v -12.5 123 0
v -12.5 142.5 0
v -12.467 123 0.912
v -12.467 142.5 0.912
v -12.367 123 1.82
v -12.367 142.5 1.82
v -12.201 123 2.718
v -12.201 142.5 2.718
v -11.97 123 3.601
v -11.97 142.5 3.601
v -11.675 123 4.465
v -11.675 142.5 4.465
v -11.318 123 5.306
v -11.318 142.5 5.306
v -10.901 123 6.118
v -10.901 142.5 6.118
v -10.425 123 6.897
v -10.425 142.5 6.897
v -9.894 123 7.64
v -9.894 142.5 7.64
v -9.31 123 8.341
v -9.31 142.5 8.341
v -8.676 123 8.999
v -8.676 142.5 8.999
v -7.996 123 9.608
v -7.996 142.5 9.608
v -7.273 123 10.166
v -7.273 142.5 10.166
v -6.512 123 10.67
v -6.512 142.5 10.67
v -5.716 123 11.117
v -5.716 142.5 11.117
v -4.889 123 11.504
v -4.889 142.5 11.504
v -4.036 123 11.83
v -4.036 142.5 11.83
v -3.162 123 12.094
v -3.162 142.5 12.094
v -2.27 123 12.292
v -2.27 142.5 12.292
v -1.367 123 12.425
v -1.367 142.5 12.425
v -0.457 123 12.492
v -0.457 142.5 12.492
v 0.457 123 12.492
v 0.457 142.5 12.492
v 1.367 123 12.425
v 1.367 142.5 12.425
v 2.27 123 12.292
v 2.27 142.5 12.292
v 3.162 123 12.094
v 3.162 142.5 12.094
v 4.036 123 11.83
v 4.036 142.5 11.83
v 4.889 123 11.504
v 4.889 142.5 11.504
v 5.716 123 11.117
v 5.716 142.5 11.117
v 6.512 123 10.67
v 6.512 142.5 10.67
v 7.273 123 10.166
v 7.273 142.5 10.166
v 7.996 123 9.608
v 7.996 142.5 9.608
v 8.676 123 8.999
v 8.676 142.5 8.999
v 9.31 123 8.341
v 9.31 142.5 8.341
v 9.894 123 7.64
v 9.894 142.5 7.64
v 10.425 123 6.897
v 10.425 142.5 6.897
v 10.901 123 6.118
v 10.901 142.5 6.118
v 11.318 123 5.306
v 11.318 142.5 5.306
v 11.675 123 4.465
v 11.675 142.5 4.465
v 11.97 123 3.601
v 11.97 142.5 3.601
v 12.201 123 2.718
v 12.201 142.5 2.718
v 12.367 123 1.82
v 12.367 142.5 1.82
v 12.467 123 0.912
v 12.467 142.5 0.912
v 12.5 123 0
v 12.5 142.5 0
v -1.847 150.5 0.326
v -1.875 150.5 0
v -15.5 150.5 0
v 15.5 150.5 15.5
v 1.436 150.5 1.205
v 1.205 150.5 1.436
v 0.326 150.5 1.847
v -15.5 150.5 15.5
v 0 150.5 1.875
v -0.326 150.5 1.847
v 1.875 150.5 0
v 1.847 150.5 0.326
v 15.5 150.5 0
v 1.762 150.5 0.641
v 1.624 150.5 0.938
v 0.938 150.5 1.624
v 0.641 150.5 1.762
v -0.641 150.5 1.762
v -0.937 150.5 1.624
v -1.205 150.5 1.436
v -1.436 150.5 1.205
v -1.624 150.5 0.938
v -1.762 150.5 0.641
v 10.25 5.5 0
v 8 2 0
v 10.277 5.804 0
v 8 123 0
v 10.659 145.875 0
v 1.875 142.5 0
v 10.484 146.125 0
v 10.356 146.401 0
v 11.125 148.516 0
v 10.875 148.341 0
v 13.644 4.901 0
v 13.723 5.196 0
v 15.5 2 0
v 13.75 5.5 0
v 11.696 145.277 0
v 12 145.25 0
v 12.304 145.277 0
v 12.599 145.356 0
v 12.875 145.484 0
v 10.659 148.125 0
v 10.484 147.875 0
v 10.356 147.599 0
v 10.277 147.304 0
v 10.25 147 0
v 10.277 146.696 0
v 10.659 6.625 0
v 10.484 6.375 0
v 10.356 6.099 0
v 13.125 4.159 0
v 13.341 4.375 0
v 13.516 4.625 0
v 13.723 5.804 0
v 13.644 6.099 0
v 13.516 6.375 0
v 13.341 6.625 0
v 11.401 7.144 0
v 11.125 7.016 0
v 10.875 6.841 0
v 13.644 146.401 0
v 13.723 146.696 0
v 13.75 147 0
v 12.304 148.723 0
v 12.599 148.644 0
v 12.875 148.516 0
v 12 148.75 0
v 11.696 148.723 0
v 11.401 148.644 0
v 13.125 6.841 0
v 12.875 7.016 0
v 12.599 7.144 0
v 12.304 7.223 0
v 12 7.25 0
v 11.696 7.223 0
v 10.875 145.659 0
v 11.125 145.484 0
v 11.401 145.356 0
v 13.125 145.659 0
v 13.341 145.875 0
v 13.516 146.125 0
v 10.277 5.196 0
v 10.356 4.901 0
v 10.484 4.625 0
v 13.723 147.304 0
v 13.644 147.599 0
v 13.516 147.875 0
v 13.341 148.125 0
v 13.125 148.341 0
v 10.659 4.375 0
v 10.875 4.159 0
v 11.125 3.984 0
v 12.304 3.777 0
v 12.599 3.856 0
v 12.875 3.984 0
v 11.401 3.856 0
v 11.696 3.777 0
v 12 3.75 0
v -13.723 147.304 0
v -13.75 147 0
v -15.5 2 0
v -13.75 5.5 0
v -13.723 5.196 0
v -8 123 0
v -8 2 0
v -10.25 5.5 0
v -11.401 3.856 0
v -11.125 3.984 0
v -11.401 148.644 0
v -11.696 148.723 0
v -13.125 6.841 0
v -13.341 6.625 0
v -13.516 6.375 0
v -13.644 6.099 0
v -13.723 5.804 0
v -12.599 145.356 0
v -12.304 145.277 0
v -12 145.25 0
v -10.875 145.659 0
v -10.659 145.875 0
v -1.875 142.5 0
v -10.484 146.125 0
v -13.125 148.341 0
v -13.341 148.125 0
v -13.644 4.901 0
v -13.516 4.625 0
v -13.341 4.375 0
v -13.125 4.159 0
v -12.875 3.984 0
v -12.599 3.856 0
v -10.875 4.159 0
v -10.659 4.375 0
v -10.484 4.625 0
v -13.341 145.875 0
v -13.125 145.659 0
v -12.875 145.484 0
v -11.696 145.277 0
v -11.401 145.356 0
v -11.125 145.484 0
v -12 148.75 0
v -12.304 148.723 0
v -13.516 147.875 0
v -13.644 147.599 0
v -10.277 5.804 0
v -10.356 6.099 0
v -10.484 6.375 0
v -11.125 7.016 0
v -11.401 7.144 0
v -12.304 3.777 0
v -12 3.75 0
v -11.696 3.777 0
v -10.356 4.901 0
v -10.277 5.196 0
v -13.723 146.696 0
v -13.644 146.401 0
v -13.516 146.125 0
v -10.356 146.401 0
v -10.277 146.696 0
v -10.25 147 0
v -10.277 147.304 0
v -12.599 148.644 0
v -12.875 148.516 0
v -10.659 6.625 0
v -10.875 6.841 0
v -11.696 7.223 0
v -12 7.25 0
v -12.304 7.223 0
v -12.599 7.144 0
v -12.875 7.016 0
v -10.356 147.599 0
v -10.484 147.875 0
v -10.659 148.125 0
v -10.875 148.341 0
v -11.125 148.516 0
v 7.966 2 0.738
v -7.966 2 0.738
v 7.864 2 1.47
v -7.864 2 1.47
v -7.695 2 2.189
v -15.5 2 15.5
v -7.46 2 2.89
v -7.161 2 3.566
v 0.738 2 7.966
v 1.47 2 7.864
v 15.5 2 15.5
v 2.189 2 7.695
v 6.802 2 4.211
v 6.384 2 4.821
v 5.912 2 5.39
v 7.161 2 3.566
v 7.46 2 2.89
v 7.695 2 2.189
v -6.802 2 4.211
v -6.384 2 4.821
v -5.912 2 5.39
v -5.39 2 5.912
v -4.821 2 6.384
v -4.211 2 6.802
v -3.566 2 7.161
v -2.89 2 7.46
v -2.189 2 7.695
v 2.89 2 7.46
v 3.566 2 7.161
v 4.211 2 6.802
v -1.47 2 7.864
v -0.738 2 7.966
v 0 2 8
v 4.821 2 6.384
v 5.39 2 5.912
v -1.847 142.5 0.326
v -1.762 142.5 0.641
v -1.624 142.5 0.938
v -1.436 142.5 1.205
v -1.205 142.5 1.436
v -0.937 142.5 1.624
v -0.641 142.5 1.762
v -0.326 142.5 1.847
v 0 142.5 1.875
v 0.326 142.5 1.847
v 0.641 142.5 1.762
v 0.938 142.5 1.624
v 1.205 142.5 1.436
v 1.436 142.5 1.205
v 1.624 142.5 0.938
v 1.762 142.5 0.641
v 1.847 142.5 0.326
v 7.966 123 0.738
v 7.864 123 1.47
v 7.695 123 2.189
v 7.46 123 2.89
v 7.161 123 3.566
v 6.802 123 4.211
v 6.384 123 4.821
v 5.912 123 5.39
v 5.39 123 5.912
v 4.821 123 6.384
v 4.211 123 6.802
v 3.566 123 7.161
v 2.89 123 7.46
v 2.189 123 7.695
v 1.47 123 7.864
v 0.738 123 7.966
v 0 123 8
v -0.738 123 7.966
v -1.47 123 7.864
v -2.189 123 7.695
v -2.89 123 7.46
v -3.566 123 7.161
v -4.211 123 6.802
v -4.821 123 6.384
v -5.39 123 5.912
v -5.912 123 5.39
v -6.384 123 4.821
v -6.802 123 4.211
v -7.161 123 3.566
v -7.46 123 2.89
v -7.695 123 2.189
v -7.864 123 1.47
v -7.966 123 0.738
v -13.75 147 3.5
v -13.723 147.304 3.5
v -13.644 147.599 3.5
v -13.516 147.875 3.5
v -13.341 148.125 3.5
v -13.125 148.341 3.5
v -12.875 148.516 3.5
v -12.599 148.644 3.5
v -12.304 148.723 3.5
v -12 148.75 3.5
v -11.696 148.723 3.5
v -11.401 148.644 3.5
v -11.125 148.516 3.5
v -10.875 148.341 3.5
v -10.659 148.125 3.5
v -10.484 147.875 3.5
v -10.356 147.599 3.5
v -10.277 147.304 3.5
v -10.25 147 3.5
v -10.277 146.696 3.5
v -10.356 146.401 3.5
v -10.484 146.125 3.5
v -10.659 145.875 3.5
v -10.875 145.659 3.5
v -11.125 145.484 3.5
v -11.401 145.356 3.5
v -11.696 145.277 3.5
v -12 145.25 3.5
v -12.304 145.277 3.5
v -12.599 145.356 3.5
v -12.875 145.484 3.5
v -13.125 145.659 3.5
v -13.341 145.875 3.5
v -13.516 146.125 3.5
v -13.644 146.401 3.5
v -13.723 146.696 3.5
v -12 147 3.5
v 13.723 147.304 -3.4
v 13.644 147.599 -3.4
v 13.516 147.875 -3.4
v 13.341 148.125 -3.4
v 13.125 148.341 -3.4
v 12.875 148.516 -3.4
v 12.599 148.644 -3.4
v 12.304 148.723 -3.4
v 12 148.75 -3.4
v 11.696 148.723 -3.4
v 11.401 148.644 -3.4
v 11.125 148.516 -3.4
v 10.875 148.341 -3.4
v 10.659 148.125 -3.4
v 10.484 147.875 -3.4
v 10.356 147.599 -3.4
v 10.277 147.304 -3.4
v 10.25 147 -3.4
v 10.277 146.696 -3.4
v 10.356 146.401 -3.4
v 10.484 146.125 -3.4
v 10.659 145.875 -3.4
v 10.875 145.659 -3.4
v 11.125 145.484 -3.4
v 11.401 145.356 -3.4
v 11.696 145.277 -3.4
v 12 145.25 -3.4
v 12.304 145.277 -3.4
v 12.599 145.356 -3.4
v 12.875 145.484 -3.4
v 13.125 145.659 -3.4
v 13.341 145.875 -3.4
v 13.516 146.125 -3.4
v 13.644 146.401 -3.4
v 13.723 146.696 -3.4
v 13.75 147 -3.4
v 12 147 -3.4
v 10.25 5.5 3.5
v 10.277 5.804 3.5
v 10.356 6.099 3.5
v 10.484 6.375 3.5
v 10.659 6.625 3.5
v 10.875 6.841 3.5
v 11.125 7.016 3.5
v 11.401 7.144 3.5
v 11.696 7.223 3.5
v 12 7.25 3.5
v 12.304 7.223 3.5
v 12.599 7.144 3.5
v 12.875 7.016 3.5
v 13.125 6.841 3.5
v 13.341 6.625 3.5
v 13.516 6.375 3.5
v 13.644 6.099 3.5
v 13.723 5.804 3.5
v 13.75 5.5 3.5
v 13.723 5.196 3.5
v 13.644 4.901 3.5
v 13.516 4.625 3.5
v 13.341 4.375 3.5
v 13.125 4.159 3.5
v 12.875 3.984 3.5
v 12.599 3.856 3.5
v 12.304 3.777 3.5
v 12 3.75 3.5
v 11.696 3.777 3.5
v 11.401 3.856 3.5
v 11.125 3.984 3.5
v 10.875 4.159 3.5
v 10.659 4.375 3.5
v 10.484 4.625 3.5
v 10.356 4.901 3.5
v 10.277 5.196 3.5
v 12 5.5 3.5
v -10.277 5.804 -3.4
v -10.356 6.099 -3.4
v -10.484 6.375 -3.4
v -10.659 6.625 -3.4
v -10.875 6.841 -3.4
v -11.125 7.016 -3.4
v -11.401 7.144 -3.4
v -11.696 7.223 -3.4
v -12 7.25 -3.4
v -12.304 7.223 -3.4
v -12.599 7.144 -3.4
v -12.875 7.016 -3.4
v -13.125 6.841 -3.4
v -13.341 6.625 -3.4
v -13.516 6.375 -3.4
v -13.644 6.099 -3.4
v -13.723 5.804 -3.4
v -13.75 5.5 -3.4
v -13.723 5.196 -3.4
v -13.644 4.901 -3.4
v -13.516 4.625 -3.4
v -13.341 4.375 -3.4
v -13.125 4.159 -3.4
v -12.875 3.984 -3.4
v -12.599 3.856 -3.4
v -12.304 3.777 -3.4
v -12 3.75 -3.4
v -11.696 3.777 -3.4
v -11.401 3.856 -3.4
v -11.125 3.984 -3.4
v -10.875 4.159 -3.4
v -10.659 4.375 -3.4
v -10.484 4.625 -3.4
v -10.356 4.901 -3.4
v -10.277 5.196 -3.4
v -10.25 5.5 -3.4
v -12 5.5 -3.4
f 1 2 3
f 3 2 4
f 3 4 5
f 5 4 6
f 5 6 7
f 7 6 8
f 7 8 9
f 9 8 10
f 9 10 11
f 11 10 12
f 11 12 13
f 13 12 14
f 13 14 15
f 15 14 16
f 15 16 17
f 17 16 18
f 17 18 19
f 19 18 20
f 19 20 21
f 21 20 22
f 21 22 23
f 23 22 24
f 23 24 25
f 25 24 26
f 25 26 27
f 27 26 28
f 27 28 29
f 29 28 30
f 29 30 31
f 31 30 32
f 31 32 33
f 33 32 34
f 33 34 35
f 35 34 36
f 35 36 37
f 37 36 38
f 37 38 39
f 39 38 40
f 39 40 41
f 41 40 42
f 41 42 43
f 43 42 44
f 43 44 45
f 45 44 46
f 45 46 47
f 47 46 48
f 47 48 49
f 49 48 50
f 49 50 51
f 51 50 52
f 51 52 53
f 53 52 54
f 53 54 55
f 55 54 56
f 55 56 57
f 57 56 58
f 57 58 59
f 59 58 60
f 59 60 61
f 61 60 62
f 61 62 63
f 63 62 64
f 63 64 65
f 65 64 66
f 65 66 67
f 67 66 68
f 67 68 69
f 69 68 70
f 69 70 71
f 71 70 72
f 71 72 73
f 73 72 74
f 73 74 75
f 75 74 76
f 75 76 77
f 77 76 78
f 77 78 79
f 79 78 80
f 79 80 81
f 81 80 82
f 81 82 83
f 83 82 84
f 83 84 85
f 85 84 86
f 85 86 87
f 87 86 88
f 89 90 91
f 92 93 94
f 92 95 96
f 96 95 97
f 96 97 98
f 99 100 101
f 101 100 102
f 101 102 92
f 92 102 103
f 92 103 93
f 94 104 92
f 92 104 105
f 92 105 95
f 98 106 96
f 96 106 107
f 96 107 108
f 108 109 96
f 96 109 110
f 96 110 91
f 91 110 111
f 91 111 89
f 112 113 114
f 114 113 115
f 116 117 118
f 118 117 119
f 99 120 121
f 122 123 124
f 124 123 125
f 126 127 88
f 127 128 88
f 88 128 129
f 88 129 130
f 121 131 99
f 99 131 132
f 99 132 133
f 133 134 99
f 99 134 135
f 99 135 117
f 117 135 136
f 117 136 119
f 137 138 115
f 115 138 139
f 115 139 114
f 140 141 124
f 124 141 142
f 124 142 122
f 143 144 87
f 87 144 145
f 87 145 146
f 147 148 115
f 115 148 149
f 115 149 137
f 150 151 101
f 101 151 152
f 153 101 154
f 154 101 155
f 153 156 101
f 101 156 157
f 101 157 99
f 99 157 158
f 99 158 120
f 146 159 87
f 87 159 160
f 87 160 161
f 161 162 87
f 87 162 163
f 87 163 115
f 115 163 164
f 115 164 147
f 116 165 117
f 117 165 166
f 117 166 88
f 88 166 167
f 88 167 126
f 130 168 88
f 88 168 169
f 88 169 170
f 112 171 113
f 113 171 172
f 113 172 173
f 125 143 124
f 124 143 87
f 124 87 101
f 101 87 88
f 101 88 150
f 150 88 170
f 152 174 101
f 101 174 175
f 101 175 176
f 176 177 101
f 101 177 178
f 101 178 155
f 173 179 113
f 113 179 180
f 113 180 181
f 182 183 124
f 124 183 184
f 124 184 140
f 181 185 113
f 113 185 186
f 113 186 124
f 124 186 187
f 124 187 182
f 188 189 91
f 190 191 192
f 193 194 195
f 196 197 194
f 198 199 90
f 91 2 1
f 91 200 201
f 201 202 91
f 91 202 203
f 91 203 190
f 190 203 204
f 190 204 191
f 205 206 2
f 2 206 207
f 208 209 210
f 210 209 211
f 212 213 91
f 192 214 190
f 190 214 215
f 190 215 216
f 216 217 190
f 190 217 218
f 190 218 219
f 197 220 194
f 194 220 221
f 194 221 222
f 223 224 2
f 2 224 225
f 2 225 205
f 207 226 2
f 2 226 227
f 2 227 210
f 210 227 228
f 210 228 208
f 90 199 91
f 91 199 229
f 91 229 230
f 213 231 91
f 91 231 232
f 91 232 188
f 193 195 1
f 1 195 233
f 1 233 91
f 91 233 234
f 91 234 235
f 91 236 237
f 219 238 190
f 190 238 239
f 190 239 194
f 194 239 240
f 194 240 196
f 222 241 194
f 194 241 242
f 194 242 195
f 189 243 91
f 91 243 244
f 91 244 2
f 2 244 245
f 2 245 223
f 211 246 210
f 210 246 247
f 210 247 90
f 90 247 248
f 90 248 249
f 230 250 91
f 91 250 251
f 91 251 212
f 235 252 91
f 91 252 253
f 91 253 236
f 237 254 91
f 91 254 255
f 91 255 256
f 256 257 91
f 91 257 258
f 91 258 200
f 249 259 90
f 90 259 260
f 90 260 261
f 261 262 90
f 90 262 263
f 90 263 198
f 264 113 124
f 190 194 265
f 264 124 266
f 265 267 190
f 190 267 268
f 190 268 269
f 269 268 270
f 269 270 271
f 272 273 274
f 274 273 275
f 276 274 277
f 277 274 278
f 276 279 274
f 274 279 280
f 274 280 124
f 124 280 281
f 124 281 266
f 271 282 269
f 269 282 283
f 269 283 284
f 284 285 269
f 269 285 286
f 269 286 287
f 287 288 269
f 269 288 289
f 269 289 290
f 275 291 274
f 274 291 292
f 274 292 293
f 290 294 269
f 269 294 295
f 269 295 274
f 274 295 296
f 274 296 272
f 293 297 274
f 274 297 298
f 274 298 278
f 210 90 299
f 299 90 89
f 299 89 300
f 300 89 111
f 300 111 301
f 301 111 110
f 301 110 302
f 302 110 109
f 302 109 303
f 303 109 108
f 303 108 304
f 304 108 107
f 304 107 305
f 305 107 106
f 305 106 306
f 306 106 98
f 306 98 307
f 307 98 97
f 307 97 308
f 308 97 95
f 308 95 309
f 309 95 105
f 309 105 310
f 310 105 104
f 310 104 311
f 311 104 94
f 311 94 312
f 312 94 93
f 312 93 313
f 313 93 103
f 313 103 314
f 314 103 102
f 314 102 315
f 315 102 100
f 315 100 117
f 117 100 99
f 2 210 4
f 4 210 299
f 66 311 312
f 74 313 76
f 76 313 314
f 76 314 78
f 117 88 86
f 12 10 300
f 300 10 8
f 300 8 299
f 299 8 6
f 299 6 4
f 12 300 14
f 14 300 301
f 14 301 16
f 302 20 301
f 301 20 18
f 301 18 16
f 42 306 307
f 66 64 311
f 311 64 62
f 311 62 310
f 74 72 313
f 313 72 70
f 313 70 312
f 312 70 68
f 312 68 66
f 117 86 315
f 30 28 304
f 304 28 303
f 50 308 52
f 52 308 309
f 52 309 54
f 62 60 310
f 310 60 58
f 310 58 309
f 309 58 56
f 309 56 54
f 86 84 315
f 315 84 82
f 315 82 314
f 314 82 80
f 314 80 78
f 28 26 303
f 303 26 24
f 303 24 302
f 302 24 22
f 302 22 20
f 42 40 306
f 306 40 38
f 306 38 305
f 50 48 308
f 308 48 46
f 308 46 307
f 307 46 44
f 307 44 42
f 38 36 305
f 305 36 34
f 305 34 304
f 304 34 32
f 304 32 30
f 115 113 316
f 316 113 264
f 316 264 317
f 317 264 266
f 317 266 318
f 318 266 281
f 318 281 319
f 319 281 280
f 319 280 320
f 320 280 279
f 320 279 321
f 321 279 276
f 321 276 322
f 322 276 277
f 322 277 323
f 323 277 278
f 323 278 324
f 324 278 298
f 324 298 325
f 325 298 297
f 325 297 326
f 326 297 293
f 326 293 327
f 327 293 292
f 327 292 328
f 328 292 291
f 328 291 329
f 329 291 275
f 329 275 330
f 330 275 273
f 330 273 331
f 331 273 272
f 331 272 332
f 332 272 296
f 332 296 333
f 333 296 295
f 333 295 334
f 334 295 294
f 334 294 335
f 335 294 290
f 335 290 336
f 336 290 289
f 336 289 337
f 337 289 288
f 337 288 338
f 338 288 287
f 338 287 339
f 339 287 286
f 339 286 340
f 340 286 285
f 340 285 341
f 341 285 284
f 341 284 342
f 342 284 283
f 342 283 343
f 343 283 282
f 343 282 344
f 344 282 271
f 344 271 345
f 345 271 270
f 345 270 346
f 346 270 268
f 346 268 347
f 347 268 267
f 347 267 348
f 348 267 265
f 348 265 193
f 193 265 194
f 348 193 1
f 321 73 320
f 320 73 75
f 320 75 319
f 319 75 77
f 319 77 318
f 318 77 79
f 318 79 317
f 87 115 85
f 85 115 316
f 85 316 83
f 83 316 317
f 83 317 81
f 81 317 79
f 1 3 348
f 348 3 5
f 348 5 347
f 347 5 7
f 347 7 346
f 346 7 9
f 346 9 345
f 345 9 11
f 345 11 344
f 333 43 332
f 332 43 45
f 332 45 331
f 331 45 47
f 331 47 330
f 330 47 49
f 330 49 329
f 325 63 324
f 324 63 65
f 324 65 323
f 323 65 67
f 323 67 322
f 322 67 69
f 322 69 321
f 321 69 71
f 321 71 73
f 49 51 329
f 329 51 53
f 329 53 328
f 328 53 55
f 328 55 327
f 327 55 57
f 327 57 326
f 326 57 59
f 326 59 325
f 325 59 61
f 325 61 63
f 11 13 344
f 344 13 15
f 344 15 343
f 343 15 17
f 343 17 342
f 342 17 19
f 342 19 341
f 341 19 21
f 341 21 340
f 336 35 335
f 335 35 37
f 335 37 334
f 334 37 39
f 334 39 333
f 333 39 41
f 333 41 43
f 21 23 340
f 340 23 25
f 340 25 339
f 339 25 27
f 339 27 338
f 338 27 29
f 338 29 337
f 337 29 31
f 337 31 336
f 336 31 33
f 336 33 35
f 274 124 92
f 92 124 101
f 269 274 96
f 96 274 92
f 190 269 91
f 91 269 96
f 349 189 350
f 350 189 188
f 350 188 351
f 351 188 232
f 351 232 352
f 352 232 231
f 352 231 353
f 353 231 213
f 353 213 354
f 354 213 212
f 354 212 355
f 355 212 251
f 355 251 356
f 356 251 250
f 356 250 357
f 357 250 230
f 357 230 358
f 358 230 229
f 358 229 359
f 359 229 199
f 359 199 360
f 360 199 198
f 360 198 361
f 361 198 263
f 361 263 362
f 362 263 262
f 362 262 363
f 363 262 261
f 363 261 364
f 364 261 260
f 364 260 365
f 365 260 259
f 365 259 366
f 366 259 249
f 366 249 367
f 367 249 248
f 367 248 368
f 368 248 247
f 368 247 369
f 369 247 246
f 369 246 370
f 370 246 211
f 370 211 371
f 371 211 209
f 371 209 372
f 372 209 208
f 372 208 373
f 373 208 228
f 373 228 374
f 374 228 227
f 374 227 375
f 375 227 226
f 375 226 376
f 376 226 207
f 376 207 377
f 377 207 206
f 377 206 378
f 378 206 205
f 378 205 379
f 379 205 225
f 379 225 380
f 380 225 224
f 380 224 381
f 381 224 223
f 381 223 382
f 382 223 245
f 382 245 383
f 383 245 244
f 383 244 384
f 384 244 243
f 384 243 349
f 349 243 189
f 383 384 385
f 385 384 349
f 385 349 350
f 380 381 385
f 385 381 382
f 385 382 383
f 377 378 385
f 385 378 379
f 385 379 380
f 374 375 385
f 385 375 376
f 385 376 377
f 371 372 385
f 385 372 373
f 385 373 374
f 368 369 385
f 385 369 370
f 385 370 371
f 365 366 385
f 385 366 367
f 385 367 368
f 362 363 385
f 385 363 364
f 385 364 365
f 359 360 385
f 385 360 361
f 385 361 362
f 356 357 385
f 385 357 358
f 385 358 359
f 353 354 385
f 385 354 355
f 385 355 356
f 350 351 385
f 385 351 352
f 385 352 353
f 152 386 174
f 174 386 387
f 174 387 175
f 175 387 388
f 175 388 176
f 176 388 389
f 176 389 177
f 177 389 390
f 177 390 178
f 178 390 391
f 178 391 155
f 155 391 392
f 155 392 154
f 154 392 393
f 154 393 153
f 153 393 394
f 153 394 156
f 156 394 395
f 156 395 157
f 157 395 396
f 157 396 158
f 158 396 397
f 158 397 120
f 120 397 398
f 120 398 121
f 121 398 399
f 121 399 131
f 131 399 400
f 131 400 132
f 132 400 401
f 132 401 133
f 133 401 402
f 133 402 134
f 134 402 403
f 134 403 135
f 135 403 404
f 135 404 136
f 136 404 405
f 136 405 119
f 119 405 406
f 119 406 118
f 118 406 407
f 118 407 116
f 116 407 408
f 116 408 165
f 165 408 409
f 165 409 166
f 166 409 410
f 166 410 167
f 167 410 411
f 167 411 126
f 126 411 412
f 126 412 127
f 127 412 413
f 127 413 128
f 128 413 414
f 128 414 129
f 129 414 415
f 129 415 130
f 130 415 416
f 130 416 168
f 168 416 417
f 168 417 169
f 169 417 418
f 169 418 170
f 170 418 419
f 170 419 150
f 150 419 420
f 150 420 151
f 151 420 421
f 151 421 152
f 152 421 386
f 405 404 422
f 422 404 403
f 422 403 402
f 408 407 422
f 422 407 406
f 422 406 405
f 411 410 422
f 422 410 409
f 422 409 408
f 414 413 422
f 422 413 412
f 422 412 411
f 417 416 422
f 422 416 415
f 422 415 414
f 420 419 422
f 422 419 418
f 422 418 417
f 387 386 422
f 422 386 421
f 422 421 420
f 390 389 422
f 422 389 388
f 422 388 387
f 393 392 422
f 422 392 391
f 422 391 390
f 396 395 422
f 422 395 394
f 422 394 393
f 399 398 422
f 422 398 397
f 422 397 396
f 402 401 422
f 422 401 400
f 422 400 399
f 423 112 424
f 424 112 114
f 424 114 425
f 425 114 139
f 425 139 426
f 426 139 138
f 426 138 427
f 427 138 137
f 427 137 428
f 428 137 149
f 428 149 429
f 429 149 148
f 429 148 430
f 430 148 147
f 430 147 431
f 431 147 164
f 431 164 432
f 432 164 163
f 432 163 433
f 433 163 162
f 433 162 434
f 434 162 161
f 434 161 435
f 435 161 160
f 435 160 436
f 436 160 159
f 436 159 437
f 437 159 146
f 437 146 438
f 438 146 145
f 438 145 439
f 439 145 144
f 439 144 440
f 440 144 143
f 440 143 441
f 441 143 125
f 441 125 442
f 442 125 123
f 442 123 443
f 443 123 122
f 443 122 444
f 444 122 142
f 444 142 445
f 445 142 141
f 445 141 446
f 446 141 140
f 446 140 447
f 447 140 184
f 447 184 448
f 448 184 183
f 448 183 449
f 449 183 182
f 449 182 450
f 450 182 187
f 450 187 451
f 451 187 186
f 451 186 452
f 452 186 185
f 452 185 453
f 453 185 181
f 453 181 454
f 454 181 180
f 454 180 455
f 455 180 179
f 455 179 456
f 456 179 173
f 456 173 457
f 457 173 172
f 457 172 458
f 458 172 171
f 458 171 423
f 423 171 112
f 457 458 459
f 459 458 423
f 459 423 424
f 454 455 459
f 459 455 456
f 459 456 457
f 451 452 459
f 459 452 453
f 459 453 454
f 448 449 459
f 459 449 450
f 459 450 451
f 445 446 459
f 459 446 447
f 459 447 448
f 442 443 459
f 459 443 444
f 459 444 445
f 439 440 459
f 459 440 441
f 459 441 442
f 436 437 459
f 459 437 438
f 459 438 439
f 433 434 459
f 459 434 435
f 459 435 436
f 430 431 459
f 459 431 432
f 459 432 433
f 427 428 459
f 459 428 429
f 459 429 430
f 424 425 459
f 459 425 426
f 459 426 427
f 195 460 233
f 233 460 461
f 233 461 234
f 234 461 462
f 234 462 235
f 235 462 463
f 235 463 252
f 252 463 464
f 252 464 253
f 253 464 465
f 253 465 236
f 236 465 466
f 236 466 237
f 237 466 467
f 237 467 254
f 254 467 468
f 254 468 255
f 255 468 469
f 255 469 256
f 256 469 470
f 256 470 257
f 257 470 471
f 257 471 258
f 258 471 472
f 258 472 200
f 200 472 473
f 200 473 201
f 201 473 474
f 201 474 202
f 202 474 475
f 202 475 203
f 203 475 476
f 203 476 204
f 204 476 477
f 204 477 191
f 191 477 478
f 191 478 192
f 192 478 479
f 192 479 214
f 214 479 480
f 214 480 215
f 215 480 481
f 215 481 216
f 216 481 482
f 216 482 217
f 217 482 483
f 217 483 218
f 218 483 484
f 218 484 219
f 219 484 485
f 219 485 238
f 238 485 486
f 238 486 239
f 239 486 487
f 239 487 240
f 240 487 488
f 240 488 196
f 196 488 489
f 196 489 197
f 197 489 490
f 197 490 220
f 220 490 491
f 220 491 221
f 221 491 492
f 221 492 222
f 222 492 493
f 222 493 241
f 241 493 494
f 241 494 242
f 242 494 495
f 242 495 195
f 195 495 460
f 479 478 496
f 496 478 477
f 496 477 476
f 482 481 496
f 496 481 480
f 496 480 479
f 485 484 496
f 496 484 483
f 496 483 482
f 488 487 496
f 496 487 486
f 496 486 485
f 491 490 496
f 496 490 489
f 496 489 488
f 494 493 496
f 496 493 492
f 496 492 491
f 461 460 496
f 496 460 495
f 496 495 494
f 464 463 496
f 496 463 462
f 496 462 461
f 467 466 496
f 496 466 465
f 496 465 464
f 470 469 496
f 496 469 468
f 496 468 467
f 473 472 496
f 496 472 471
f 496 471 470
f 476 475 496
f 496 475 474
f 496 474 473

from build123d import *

# Parameters (mm, degrees)
SKETCH1_R            = 12.5
BOSS_EXTRUDE1_DEPTH  = 150.5
BOSS_EXTRUDE2_DEPTH  = 148.5
SKETCH8_R            = 12.5
CUT_EXTRUDE2_DEPTH   = 152.706130397
BOSS_EXTRUDE7_DEPTH  = 8
BOSS_EXTRUDE8_START  = -121
BOSS_EXTRUDE8_DEPTH  = 121
BOSS_EXTRUDE9_DEPTH  = 148.5
SKETCH13_R           = 1.75
CUT_EXTRUDE3_DEPTH   = 3.5
SKETCH14_R           = 1.75
BOSS_EXTRUDE10_DEPTH = 3.4
SKETCH15_R           = 1.75
CUT_EXTRUDE4_DEPTH   = 3.5
SKETCH16_R           = 1.75
BOSS_EXTRUDE11_DEPTH = 3.4


with BuildPart() as part:
    # Sketch1 → Boss-Extrude1 (new body)
    with BuildSketch(Plane(origin=(0, 0, 0), x_dir=(1, 0, 0), z_dir=(0, 1, 0))):
        with Locations(Location((0, 0, 0), (0, 0, 270))):
            Circle(SKETCH1_R)
    extrude(amount=BOSS_EXTRUDE1_DEPTH)

    # Sketch2 → Boss-Extrude2 (add)
    with BuildSketch(Plane(origin=(0, 150.5, 0), x_dir=(1, 0, 0), z_dir=(0, 1, 0))):
        with BuildLine():
            Line((-13.5, 0), (13.5, 0))
            ThreePointArc((13.5, 0), (0, -13.5), (-13.5, 0))
        make_face()
    extrude(amount=-BOSS_EXTRUDE2_DEPTH)

    # Sketch8 → Cut-Extrude2 (cut, through all)
    with BuildSketch(Plane(origin=(0, 150.5, 0), x_dir=(1, 0, 0), z_dir=(0, 1, 0))):
        Circle(SKETCH8_R)
    extrude(amount=-CUT_EXTRUDE2_DEPTH, mode=Mode.SUBTRACT)

    # Sketch9 → Boss-Extrude7 (add)
    with BuildSketch(Plane(origin=(0, 150.5, 0), x_dir=(1, 0, 0), z_dir=(0, 1, 0))):
        with BuildLine():
            Line((12.5, 0), (1.875, 0))
            ThreePointArc((1.875, 0), (0, -1.875), (-1.875, 0))
            Line((-1.875, 0), (-12.5, 0))
            ThreePointArc((-12.5, 0), (0, -12.5), (12.5, 0))
        make_face()
    extrude(amount=-BOSS_EXTRUDE7_DEPTH)

    # Sketch11 → Boss-Extrude8 (add)
    with BuildSketch(Plane.XZ.offset(-2).offset(BOSS_EXTRUDE8_START)):
        with BuildLine():
            Line((-12.5, 0), (-8, 0))
            ThreePointArc((-8, 0), (0, 8), (8, 0))
            Line((8, 0), (12.5, 0))
            ThreePointArc((12.5, 0), (0, 12.5), (-12.5, 0))
        make_face()
    extrude(amount=BOSS_EXTRUDE8_DEPTH)

    # Sketch12 → Boss-Extrude9 (add)
    with BuildSketch(Plane(origin=(0, 150.5, 0), x_dir=(1, 0, 0), z_dir=(0, 1, 0))):
        with BuildLine():
            Line((-13.5, 0), (-15.5, 0))
            Line((-15.5, 0), (-15.5, -15.5))
            Line((-15.5, -15.5), (15.5, -15.5))
            Line((15.5, -15.5), (15.5, 0))
            Line((15.5, 0), (13.5, 0))
            ThreePointArc((13.5, 0), (0, -13.5), (-13.5, 0))
        make_face()
    extrude(amount=-BOSS_EXTRUDE9_DEPTH)

    # Sketch13 → Cut-Extrude3 (cut)
    with BuildSketch(Plane(origin=(0, 0, 0), x_dir=(-1, 0, 0), z_dir=(0, 0, -1))):
        with Locations((12, 147)):
            Circle(SKETCH13_R)
    extrude(amount=-CUT_EXTRUDE3_DEPTH, mode=Mode.SUBTRACT)

    # Sketch14 → Boss-Extrude10 (add)
    with BuildSketch(Plane(origin=(0, 0, 0), x_dir=(-1, 0, 0), z_dir=(0, 0, -1))):
        with Locations((-12, 147)):
            Circle(SKETCH14_R)
    extrude(amount=BOSS_EXTRUDE10_DEPTH)

    # Sketch15 → Cut-Extrude4 (cut)
    with BuildSketch(Plane(origin=(0, 0, 0), x_dir=(-1, 0, 0), z_dir=(0, 0, -1))):
        with Locations((-12, 5.5)):
            Circle(SKETCH15_R)
    extrude(amount=-CUT_EXTRUDE4_DEPTH, mode=Mode.SUBTRACT)

    # Sketch16 → Boss-Extrude11 (add)
    with BuildSketch(Plane(origin=(0, 0, 0), x_dir=(-1, 0, 0), z_dir=(0, 0, -1))):
        with Locations((12, 5.5)):
            Circle(SKETCH16_R)
    extrude(amount=BOSS_EXTRUDE11_DEPTH)


solid = part.part
